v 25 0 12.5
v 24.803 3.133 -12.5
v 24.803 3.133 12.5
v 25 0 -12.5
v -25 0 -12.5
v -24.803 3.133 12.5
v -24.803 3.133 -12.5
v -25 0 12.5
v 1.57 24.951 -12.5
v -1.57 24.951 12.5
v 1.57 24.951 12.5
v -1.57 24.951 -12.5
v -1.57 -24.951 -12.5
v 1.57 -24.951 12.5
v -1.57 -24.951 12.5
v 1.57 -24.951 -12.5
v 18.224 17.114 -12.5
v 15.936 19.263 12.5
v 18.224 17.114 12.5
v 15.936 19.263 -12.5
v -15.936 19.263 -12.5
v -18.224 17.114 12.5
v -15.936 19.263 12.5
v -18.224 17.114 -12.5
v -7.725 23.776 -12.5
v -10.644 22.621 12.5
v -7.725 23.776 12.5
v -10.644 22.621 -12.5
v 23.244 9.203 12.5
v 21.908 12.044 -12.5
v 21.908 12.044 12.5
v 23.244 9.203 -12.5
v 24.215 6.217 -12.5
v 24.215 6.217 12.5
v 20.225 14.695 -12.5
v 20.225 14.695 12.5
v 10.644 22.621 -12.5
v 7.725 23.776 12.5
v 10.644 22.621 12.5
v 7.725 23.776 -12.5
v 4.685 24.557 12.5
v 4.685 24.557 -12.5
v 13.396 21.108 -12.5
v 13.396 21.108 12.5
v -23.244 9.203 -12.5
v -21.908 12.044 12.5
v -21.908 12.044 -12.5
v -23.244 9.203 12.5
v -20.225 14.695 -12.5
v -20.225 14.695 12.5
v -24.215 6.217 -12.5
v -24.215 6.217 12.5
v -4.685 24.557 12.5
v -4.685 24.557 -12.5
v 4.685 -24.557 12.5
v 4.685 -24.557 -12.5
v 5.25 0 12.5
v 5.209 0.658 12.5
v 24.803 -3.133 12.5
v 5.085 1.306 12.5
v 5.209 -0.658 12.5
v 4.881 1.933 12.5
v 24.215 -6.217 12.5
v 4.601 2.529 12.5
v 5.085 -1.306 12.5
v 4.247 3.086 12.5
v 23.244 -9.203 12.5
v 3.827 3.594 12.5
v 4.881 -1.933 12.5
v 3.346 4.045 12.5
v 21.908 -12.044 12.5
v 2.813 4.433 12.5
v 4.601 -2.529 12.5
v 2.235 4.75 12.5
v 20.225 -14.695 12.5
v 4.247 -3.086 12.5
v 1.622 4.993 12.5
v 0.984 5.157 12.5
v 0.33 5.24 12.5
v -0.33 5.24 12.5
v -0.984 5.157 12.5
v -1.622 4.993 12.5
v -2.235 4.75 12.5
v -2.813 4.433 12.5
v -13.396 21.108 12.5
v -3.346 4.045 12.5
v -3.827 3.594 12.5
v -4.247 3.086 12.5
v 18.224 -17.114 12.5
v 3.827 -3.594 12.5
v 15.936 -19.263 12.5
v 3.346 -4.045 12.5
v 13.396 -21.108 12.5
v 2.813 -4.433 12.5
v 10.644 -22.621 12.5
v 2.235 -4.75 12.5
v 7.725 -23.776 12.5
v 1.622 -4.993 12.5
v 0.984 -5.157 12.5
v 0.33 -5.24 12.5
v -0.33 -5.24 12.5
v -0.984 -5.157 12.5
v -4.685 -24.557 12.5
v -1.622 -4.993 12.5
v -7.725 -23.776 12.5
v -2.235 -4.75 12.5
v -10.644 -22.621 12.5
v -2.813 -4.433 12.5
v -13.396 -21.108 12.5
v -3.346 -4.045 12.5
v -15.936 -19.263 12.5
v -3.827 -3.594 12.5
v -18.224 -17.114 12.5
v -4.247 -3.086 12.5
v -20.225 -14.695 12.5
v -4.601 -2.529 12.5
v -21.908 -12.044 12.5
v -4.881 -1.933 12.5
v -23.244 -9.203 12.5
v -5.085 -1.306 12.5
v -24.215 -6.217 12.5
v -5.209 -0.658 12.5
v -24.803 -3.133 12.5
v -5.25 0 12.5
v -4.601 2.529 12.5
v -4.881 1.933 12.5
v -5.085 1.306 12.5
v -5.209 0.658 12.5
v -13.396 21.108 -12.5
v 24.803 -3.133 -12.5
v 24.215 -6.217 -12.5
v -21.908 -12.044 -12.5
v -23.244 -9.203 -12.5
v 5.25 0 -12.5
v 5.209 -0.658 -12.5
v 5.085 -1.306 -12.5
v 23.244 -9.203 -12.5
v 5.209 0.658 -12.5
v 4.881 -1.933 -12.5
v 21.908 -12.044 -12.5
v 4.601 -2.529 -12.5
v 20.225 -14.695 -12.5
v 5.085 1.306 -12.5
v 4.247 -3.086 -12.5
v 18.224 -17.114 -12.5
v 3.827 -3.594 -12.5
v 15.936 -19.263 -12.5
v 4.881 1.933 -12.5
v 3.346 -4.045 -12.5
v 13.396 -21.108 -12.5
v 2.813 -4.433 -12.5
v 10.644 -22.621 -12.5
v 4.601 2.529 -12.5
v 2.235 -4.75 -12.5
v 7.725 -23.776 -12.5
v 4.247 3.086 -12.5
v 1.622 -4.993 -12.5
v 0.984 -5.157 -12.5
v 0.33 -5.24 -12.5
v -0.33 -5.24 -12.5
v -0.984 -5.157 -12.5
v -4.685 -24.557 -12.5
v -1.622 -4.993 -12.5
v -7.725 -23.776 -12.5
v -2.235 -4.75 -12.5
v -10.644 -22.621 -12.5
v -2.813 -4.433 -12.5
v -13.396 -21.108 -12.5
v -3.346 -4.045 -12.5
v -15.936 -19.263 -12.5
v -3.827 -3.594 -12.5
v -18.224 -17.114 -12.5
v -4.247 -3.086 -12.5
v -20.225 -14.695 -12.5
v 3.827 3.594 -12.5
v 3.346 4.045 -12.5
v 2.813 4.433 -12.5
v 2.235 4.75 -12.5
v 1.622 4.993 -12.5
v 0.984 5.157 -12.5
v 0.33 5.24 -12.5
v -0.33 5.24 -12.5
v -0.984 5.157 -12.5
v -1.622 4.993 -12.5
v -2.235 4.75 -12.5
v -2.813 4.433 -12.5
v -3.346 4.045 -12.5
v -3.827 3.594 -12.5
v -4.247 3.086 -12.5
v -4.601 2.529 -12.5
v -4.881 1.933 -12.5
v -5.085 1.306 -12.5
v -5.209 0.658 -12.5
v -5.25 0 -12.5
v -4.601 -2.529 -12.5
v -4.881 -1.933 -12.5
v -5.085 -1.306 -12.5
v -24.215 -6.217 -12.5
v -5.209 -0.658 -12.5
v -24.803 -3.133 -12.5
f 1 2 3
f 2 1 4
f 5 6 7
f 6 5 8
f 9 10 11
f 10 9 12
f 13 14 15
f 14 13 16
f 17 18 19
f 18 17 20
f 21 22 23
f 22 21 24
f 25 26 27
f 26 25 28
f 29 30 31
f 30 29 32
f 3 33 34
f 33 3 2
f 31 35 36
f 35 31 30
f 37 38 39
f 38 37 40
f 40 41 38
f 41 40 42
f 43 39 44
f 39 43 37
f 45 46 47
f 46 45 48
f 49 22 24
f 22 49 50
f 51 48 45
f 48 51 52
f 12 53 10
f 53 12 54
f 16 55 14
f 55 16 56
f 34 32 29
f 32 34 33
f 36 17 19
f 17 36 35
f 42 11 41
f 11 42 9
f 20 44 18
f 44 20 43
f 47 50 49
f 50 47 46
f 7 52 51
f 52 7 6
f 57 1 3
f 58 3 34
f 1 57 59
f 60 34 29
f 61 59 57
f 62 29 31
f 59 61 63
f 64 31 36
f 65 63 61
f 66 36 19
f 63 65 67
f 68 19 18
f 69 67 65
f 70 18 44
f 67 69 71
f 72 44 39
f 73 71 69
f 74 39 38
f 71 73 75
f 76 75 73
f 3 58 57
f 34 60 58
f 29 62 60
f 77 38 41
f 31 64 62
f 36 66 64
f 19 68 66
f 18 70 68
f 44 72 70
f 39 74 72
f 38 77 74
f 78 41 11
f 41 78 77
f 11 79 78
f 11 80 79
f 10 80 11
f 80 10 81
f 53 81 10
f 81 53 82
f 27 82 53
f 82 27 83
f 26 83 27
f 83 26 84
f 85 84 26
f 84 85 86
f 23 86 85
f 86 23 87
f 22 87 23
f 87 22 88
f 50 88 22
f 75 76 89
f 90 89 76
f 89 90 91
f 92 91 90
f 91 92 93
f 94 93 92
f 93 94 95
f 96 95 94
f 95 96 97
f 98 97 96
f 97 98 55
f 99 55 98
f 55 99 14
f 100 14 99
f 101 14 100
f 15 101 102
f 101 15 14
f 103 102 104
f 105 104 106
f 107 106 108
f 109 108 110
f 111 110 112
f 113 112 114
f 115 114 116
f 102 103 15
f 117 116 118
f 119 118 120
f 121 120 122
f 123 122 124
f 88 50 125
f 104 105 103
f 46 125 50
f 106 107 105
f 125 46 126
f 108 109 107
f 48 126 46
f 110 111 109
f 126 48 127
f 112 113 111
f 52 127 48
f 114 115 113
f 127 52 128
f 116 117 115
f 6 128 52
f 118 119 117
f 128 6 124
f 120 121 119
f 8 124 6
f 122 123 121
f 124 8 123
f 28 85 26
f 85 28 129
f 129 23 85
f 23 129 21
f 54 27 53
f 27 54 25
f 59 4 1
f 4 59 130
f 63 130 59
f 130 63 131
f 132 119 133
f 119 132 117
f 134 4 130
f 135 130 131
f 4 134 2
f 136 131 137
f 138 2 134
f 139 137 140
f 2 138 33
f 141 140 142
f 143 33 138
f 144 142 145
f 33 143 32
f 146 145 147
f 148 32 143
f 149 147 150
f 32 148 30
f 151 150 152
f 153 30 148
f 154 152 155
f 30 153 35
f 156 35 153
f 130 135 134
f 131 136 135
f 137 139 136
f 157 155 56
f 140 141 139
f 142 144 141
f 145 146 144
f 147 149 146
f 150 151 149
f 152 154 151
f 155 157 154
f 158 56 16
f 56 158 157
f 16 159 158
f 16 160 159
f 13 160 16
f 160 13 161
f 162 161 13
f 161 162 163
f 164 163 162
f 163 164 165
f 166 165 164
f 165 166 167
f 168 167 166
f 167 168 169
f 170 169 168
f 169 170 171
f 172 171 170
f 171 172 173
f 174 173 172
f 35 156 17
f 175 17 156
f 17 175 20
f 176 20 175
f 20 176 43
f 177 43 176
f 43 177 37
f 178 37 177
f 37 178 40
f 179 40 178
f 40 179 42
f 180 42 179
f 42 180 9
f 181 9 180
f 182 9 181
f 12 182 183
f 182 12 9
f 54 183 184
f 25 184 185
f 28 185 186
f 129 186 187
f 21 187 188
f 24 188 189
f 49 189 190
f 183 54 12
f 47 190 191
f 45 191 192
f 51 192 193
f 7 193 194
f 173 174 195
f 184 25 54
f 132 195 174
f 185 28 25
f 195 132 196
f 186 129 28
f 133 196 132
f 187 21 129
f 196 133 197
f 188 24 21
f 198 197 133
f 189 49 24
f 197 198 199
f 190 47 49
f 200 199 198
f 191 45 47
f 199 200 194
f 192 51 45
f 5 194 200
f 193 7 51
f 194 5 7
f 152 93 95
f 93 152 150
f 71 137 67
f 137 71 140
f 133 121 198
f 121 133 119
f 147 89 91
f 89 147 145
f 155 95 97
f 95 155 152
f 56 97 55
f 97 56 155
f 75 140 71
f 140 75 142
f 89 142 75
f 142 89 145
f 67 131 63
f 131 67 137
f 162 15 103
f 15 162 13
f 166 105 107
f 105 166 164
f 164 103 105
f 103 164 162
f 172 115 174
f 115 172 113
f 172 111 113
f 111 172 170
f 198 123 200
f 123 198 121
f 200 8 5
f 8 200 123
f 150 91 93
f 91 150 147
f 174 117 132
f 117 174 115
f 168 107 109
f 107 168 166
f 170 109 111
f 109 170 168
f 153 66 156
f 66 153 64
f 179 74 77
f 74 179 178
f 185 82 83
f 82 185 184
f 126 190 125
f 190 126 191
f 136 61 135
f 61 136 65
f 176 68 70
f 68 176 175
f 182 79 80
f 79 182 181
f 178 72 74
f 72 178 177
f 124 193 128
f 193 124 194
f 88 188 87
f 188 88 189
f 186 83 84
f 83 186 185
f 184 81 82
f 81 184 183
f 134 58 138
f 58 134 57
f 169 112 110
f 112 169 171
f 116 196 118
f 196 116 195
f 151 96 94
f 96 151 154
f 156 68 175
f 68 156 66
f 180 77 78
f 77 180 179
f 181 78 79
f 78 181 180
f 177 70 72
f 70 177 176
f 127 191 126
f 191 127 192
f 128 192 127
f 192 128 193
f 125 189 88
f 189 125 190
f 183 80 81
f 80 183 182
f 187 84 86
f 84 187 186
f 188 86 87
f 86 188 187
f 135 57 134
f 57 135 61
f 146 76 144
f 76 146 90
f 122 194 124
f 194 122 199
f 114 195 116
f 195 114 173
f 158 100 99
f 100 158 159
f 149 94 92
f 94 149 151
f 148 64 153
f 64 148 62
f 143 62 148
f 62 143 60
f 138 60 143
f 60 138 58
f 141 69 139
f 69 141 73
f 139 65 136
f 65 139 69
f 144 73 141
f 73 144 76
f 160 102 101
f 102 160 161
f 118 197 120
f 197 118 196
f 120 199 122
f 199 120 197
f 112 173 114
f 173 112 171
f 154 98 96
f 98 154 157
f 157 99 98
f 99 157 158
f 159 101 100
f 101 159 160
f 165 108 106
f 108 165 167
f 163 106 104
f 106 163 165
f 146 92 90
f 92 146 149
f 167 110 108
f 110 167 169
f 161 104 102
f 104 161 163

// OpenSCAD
$fn = 50;


difference() {
	union() {
		translate(v = [0, 0, -12.5000000000]) {
			cylinder(h = 25, r = 25.0000000000);
		}
	}
	union() {
		translate(v = [0, 0, -100.0000000000]) {
			cylinder(h = 200, r = 5.2500000000);
		}
	}
}
